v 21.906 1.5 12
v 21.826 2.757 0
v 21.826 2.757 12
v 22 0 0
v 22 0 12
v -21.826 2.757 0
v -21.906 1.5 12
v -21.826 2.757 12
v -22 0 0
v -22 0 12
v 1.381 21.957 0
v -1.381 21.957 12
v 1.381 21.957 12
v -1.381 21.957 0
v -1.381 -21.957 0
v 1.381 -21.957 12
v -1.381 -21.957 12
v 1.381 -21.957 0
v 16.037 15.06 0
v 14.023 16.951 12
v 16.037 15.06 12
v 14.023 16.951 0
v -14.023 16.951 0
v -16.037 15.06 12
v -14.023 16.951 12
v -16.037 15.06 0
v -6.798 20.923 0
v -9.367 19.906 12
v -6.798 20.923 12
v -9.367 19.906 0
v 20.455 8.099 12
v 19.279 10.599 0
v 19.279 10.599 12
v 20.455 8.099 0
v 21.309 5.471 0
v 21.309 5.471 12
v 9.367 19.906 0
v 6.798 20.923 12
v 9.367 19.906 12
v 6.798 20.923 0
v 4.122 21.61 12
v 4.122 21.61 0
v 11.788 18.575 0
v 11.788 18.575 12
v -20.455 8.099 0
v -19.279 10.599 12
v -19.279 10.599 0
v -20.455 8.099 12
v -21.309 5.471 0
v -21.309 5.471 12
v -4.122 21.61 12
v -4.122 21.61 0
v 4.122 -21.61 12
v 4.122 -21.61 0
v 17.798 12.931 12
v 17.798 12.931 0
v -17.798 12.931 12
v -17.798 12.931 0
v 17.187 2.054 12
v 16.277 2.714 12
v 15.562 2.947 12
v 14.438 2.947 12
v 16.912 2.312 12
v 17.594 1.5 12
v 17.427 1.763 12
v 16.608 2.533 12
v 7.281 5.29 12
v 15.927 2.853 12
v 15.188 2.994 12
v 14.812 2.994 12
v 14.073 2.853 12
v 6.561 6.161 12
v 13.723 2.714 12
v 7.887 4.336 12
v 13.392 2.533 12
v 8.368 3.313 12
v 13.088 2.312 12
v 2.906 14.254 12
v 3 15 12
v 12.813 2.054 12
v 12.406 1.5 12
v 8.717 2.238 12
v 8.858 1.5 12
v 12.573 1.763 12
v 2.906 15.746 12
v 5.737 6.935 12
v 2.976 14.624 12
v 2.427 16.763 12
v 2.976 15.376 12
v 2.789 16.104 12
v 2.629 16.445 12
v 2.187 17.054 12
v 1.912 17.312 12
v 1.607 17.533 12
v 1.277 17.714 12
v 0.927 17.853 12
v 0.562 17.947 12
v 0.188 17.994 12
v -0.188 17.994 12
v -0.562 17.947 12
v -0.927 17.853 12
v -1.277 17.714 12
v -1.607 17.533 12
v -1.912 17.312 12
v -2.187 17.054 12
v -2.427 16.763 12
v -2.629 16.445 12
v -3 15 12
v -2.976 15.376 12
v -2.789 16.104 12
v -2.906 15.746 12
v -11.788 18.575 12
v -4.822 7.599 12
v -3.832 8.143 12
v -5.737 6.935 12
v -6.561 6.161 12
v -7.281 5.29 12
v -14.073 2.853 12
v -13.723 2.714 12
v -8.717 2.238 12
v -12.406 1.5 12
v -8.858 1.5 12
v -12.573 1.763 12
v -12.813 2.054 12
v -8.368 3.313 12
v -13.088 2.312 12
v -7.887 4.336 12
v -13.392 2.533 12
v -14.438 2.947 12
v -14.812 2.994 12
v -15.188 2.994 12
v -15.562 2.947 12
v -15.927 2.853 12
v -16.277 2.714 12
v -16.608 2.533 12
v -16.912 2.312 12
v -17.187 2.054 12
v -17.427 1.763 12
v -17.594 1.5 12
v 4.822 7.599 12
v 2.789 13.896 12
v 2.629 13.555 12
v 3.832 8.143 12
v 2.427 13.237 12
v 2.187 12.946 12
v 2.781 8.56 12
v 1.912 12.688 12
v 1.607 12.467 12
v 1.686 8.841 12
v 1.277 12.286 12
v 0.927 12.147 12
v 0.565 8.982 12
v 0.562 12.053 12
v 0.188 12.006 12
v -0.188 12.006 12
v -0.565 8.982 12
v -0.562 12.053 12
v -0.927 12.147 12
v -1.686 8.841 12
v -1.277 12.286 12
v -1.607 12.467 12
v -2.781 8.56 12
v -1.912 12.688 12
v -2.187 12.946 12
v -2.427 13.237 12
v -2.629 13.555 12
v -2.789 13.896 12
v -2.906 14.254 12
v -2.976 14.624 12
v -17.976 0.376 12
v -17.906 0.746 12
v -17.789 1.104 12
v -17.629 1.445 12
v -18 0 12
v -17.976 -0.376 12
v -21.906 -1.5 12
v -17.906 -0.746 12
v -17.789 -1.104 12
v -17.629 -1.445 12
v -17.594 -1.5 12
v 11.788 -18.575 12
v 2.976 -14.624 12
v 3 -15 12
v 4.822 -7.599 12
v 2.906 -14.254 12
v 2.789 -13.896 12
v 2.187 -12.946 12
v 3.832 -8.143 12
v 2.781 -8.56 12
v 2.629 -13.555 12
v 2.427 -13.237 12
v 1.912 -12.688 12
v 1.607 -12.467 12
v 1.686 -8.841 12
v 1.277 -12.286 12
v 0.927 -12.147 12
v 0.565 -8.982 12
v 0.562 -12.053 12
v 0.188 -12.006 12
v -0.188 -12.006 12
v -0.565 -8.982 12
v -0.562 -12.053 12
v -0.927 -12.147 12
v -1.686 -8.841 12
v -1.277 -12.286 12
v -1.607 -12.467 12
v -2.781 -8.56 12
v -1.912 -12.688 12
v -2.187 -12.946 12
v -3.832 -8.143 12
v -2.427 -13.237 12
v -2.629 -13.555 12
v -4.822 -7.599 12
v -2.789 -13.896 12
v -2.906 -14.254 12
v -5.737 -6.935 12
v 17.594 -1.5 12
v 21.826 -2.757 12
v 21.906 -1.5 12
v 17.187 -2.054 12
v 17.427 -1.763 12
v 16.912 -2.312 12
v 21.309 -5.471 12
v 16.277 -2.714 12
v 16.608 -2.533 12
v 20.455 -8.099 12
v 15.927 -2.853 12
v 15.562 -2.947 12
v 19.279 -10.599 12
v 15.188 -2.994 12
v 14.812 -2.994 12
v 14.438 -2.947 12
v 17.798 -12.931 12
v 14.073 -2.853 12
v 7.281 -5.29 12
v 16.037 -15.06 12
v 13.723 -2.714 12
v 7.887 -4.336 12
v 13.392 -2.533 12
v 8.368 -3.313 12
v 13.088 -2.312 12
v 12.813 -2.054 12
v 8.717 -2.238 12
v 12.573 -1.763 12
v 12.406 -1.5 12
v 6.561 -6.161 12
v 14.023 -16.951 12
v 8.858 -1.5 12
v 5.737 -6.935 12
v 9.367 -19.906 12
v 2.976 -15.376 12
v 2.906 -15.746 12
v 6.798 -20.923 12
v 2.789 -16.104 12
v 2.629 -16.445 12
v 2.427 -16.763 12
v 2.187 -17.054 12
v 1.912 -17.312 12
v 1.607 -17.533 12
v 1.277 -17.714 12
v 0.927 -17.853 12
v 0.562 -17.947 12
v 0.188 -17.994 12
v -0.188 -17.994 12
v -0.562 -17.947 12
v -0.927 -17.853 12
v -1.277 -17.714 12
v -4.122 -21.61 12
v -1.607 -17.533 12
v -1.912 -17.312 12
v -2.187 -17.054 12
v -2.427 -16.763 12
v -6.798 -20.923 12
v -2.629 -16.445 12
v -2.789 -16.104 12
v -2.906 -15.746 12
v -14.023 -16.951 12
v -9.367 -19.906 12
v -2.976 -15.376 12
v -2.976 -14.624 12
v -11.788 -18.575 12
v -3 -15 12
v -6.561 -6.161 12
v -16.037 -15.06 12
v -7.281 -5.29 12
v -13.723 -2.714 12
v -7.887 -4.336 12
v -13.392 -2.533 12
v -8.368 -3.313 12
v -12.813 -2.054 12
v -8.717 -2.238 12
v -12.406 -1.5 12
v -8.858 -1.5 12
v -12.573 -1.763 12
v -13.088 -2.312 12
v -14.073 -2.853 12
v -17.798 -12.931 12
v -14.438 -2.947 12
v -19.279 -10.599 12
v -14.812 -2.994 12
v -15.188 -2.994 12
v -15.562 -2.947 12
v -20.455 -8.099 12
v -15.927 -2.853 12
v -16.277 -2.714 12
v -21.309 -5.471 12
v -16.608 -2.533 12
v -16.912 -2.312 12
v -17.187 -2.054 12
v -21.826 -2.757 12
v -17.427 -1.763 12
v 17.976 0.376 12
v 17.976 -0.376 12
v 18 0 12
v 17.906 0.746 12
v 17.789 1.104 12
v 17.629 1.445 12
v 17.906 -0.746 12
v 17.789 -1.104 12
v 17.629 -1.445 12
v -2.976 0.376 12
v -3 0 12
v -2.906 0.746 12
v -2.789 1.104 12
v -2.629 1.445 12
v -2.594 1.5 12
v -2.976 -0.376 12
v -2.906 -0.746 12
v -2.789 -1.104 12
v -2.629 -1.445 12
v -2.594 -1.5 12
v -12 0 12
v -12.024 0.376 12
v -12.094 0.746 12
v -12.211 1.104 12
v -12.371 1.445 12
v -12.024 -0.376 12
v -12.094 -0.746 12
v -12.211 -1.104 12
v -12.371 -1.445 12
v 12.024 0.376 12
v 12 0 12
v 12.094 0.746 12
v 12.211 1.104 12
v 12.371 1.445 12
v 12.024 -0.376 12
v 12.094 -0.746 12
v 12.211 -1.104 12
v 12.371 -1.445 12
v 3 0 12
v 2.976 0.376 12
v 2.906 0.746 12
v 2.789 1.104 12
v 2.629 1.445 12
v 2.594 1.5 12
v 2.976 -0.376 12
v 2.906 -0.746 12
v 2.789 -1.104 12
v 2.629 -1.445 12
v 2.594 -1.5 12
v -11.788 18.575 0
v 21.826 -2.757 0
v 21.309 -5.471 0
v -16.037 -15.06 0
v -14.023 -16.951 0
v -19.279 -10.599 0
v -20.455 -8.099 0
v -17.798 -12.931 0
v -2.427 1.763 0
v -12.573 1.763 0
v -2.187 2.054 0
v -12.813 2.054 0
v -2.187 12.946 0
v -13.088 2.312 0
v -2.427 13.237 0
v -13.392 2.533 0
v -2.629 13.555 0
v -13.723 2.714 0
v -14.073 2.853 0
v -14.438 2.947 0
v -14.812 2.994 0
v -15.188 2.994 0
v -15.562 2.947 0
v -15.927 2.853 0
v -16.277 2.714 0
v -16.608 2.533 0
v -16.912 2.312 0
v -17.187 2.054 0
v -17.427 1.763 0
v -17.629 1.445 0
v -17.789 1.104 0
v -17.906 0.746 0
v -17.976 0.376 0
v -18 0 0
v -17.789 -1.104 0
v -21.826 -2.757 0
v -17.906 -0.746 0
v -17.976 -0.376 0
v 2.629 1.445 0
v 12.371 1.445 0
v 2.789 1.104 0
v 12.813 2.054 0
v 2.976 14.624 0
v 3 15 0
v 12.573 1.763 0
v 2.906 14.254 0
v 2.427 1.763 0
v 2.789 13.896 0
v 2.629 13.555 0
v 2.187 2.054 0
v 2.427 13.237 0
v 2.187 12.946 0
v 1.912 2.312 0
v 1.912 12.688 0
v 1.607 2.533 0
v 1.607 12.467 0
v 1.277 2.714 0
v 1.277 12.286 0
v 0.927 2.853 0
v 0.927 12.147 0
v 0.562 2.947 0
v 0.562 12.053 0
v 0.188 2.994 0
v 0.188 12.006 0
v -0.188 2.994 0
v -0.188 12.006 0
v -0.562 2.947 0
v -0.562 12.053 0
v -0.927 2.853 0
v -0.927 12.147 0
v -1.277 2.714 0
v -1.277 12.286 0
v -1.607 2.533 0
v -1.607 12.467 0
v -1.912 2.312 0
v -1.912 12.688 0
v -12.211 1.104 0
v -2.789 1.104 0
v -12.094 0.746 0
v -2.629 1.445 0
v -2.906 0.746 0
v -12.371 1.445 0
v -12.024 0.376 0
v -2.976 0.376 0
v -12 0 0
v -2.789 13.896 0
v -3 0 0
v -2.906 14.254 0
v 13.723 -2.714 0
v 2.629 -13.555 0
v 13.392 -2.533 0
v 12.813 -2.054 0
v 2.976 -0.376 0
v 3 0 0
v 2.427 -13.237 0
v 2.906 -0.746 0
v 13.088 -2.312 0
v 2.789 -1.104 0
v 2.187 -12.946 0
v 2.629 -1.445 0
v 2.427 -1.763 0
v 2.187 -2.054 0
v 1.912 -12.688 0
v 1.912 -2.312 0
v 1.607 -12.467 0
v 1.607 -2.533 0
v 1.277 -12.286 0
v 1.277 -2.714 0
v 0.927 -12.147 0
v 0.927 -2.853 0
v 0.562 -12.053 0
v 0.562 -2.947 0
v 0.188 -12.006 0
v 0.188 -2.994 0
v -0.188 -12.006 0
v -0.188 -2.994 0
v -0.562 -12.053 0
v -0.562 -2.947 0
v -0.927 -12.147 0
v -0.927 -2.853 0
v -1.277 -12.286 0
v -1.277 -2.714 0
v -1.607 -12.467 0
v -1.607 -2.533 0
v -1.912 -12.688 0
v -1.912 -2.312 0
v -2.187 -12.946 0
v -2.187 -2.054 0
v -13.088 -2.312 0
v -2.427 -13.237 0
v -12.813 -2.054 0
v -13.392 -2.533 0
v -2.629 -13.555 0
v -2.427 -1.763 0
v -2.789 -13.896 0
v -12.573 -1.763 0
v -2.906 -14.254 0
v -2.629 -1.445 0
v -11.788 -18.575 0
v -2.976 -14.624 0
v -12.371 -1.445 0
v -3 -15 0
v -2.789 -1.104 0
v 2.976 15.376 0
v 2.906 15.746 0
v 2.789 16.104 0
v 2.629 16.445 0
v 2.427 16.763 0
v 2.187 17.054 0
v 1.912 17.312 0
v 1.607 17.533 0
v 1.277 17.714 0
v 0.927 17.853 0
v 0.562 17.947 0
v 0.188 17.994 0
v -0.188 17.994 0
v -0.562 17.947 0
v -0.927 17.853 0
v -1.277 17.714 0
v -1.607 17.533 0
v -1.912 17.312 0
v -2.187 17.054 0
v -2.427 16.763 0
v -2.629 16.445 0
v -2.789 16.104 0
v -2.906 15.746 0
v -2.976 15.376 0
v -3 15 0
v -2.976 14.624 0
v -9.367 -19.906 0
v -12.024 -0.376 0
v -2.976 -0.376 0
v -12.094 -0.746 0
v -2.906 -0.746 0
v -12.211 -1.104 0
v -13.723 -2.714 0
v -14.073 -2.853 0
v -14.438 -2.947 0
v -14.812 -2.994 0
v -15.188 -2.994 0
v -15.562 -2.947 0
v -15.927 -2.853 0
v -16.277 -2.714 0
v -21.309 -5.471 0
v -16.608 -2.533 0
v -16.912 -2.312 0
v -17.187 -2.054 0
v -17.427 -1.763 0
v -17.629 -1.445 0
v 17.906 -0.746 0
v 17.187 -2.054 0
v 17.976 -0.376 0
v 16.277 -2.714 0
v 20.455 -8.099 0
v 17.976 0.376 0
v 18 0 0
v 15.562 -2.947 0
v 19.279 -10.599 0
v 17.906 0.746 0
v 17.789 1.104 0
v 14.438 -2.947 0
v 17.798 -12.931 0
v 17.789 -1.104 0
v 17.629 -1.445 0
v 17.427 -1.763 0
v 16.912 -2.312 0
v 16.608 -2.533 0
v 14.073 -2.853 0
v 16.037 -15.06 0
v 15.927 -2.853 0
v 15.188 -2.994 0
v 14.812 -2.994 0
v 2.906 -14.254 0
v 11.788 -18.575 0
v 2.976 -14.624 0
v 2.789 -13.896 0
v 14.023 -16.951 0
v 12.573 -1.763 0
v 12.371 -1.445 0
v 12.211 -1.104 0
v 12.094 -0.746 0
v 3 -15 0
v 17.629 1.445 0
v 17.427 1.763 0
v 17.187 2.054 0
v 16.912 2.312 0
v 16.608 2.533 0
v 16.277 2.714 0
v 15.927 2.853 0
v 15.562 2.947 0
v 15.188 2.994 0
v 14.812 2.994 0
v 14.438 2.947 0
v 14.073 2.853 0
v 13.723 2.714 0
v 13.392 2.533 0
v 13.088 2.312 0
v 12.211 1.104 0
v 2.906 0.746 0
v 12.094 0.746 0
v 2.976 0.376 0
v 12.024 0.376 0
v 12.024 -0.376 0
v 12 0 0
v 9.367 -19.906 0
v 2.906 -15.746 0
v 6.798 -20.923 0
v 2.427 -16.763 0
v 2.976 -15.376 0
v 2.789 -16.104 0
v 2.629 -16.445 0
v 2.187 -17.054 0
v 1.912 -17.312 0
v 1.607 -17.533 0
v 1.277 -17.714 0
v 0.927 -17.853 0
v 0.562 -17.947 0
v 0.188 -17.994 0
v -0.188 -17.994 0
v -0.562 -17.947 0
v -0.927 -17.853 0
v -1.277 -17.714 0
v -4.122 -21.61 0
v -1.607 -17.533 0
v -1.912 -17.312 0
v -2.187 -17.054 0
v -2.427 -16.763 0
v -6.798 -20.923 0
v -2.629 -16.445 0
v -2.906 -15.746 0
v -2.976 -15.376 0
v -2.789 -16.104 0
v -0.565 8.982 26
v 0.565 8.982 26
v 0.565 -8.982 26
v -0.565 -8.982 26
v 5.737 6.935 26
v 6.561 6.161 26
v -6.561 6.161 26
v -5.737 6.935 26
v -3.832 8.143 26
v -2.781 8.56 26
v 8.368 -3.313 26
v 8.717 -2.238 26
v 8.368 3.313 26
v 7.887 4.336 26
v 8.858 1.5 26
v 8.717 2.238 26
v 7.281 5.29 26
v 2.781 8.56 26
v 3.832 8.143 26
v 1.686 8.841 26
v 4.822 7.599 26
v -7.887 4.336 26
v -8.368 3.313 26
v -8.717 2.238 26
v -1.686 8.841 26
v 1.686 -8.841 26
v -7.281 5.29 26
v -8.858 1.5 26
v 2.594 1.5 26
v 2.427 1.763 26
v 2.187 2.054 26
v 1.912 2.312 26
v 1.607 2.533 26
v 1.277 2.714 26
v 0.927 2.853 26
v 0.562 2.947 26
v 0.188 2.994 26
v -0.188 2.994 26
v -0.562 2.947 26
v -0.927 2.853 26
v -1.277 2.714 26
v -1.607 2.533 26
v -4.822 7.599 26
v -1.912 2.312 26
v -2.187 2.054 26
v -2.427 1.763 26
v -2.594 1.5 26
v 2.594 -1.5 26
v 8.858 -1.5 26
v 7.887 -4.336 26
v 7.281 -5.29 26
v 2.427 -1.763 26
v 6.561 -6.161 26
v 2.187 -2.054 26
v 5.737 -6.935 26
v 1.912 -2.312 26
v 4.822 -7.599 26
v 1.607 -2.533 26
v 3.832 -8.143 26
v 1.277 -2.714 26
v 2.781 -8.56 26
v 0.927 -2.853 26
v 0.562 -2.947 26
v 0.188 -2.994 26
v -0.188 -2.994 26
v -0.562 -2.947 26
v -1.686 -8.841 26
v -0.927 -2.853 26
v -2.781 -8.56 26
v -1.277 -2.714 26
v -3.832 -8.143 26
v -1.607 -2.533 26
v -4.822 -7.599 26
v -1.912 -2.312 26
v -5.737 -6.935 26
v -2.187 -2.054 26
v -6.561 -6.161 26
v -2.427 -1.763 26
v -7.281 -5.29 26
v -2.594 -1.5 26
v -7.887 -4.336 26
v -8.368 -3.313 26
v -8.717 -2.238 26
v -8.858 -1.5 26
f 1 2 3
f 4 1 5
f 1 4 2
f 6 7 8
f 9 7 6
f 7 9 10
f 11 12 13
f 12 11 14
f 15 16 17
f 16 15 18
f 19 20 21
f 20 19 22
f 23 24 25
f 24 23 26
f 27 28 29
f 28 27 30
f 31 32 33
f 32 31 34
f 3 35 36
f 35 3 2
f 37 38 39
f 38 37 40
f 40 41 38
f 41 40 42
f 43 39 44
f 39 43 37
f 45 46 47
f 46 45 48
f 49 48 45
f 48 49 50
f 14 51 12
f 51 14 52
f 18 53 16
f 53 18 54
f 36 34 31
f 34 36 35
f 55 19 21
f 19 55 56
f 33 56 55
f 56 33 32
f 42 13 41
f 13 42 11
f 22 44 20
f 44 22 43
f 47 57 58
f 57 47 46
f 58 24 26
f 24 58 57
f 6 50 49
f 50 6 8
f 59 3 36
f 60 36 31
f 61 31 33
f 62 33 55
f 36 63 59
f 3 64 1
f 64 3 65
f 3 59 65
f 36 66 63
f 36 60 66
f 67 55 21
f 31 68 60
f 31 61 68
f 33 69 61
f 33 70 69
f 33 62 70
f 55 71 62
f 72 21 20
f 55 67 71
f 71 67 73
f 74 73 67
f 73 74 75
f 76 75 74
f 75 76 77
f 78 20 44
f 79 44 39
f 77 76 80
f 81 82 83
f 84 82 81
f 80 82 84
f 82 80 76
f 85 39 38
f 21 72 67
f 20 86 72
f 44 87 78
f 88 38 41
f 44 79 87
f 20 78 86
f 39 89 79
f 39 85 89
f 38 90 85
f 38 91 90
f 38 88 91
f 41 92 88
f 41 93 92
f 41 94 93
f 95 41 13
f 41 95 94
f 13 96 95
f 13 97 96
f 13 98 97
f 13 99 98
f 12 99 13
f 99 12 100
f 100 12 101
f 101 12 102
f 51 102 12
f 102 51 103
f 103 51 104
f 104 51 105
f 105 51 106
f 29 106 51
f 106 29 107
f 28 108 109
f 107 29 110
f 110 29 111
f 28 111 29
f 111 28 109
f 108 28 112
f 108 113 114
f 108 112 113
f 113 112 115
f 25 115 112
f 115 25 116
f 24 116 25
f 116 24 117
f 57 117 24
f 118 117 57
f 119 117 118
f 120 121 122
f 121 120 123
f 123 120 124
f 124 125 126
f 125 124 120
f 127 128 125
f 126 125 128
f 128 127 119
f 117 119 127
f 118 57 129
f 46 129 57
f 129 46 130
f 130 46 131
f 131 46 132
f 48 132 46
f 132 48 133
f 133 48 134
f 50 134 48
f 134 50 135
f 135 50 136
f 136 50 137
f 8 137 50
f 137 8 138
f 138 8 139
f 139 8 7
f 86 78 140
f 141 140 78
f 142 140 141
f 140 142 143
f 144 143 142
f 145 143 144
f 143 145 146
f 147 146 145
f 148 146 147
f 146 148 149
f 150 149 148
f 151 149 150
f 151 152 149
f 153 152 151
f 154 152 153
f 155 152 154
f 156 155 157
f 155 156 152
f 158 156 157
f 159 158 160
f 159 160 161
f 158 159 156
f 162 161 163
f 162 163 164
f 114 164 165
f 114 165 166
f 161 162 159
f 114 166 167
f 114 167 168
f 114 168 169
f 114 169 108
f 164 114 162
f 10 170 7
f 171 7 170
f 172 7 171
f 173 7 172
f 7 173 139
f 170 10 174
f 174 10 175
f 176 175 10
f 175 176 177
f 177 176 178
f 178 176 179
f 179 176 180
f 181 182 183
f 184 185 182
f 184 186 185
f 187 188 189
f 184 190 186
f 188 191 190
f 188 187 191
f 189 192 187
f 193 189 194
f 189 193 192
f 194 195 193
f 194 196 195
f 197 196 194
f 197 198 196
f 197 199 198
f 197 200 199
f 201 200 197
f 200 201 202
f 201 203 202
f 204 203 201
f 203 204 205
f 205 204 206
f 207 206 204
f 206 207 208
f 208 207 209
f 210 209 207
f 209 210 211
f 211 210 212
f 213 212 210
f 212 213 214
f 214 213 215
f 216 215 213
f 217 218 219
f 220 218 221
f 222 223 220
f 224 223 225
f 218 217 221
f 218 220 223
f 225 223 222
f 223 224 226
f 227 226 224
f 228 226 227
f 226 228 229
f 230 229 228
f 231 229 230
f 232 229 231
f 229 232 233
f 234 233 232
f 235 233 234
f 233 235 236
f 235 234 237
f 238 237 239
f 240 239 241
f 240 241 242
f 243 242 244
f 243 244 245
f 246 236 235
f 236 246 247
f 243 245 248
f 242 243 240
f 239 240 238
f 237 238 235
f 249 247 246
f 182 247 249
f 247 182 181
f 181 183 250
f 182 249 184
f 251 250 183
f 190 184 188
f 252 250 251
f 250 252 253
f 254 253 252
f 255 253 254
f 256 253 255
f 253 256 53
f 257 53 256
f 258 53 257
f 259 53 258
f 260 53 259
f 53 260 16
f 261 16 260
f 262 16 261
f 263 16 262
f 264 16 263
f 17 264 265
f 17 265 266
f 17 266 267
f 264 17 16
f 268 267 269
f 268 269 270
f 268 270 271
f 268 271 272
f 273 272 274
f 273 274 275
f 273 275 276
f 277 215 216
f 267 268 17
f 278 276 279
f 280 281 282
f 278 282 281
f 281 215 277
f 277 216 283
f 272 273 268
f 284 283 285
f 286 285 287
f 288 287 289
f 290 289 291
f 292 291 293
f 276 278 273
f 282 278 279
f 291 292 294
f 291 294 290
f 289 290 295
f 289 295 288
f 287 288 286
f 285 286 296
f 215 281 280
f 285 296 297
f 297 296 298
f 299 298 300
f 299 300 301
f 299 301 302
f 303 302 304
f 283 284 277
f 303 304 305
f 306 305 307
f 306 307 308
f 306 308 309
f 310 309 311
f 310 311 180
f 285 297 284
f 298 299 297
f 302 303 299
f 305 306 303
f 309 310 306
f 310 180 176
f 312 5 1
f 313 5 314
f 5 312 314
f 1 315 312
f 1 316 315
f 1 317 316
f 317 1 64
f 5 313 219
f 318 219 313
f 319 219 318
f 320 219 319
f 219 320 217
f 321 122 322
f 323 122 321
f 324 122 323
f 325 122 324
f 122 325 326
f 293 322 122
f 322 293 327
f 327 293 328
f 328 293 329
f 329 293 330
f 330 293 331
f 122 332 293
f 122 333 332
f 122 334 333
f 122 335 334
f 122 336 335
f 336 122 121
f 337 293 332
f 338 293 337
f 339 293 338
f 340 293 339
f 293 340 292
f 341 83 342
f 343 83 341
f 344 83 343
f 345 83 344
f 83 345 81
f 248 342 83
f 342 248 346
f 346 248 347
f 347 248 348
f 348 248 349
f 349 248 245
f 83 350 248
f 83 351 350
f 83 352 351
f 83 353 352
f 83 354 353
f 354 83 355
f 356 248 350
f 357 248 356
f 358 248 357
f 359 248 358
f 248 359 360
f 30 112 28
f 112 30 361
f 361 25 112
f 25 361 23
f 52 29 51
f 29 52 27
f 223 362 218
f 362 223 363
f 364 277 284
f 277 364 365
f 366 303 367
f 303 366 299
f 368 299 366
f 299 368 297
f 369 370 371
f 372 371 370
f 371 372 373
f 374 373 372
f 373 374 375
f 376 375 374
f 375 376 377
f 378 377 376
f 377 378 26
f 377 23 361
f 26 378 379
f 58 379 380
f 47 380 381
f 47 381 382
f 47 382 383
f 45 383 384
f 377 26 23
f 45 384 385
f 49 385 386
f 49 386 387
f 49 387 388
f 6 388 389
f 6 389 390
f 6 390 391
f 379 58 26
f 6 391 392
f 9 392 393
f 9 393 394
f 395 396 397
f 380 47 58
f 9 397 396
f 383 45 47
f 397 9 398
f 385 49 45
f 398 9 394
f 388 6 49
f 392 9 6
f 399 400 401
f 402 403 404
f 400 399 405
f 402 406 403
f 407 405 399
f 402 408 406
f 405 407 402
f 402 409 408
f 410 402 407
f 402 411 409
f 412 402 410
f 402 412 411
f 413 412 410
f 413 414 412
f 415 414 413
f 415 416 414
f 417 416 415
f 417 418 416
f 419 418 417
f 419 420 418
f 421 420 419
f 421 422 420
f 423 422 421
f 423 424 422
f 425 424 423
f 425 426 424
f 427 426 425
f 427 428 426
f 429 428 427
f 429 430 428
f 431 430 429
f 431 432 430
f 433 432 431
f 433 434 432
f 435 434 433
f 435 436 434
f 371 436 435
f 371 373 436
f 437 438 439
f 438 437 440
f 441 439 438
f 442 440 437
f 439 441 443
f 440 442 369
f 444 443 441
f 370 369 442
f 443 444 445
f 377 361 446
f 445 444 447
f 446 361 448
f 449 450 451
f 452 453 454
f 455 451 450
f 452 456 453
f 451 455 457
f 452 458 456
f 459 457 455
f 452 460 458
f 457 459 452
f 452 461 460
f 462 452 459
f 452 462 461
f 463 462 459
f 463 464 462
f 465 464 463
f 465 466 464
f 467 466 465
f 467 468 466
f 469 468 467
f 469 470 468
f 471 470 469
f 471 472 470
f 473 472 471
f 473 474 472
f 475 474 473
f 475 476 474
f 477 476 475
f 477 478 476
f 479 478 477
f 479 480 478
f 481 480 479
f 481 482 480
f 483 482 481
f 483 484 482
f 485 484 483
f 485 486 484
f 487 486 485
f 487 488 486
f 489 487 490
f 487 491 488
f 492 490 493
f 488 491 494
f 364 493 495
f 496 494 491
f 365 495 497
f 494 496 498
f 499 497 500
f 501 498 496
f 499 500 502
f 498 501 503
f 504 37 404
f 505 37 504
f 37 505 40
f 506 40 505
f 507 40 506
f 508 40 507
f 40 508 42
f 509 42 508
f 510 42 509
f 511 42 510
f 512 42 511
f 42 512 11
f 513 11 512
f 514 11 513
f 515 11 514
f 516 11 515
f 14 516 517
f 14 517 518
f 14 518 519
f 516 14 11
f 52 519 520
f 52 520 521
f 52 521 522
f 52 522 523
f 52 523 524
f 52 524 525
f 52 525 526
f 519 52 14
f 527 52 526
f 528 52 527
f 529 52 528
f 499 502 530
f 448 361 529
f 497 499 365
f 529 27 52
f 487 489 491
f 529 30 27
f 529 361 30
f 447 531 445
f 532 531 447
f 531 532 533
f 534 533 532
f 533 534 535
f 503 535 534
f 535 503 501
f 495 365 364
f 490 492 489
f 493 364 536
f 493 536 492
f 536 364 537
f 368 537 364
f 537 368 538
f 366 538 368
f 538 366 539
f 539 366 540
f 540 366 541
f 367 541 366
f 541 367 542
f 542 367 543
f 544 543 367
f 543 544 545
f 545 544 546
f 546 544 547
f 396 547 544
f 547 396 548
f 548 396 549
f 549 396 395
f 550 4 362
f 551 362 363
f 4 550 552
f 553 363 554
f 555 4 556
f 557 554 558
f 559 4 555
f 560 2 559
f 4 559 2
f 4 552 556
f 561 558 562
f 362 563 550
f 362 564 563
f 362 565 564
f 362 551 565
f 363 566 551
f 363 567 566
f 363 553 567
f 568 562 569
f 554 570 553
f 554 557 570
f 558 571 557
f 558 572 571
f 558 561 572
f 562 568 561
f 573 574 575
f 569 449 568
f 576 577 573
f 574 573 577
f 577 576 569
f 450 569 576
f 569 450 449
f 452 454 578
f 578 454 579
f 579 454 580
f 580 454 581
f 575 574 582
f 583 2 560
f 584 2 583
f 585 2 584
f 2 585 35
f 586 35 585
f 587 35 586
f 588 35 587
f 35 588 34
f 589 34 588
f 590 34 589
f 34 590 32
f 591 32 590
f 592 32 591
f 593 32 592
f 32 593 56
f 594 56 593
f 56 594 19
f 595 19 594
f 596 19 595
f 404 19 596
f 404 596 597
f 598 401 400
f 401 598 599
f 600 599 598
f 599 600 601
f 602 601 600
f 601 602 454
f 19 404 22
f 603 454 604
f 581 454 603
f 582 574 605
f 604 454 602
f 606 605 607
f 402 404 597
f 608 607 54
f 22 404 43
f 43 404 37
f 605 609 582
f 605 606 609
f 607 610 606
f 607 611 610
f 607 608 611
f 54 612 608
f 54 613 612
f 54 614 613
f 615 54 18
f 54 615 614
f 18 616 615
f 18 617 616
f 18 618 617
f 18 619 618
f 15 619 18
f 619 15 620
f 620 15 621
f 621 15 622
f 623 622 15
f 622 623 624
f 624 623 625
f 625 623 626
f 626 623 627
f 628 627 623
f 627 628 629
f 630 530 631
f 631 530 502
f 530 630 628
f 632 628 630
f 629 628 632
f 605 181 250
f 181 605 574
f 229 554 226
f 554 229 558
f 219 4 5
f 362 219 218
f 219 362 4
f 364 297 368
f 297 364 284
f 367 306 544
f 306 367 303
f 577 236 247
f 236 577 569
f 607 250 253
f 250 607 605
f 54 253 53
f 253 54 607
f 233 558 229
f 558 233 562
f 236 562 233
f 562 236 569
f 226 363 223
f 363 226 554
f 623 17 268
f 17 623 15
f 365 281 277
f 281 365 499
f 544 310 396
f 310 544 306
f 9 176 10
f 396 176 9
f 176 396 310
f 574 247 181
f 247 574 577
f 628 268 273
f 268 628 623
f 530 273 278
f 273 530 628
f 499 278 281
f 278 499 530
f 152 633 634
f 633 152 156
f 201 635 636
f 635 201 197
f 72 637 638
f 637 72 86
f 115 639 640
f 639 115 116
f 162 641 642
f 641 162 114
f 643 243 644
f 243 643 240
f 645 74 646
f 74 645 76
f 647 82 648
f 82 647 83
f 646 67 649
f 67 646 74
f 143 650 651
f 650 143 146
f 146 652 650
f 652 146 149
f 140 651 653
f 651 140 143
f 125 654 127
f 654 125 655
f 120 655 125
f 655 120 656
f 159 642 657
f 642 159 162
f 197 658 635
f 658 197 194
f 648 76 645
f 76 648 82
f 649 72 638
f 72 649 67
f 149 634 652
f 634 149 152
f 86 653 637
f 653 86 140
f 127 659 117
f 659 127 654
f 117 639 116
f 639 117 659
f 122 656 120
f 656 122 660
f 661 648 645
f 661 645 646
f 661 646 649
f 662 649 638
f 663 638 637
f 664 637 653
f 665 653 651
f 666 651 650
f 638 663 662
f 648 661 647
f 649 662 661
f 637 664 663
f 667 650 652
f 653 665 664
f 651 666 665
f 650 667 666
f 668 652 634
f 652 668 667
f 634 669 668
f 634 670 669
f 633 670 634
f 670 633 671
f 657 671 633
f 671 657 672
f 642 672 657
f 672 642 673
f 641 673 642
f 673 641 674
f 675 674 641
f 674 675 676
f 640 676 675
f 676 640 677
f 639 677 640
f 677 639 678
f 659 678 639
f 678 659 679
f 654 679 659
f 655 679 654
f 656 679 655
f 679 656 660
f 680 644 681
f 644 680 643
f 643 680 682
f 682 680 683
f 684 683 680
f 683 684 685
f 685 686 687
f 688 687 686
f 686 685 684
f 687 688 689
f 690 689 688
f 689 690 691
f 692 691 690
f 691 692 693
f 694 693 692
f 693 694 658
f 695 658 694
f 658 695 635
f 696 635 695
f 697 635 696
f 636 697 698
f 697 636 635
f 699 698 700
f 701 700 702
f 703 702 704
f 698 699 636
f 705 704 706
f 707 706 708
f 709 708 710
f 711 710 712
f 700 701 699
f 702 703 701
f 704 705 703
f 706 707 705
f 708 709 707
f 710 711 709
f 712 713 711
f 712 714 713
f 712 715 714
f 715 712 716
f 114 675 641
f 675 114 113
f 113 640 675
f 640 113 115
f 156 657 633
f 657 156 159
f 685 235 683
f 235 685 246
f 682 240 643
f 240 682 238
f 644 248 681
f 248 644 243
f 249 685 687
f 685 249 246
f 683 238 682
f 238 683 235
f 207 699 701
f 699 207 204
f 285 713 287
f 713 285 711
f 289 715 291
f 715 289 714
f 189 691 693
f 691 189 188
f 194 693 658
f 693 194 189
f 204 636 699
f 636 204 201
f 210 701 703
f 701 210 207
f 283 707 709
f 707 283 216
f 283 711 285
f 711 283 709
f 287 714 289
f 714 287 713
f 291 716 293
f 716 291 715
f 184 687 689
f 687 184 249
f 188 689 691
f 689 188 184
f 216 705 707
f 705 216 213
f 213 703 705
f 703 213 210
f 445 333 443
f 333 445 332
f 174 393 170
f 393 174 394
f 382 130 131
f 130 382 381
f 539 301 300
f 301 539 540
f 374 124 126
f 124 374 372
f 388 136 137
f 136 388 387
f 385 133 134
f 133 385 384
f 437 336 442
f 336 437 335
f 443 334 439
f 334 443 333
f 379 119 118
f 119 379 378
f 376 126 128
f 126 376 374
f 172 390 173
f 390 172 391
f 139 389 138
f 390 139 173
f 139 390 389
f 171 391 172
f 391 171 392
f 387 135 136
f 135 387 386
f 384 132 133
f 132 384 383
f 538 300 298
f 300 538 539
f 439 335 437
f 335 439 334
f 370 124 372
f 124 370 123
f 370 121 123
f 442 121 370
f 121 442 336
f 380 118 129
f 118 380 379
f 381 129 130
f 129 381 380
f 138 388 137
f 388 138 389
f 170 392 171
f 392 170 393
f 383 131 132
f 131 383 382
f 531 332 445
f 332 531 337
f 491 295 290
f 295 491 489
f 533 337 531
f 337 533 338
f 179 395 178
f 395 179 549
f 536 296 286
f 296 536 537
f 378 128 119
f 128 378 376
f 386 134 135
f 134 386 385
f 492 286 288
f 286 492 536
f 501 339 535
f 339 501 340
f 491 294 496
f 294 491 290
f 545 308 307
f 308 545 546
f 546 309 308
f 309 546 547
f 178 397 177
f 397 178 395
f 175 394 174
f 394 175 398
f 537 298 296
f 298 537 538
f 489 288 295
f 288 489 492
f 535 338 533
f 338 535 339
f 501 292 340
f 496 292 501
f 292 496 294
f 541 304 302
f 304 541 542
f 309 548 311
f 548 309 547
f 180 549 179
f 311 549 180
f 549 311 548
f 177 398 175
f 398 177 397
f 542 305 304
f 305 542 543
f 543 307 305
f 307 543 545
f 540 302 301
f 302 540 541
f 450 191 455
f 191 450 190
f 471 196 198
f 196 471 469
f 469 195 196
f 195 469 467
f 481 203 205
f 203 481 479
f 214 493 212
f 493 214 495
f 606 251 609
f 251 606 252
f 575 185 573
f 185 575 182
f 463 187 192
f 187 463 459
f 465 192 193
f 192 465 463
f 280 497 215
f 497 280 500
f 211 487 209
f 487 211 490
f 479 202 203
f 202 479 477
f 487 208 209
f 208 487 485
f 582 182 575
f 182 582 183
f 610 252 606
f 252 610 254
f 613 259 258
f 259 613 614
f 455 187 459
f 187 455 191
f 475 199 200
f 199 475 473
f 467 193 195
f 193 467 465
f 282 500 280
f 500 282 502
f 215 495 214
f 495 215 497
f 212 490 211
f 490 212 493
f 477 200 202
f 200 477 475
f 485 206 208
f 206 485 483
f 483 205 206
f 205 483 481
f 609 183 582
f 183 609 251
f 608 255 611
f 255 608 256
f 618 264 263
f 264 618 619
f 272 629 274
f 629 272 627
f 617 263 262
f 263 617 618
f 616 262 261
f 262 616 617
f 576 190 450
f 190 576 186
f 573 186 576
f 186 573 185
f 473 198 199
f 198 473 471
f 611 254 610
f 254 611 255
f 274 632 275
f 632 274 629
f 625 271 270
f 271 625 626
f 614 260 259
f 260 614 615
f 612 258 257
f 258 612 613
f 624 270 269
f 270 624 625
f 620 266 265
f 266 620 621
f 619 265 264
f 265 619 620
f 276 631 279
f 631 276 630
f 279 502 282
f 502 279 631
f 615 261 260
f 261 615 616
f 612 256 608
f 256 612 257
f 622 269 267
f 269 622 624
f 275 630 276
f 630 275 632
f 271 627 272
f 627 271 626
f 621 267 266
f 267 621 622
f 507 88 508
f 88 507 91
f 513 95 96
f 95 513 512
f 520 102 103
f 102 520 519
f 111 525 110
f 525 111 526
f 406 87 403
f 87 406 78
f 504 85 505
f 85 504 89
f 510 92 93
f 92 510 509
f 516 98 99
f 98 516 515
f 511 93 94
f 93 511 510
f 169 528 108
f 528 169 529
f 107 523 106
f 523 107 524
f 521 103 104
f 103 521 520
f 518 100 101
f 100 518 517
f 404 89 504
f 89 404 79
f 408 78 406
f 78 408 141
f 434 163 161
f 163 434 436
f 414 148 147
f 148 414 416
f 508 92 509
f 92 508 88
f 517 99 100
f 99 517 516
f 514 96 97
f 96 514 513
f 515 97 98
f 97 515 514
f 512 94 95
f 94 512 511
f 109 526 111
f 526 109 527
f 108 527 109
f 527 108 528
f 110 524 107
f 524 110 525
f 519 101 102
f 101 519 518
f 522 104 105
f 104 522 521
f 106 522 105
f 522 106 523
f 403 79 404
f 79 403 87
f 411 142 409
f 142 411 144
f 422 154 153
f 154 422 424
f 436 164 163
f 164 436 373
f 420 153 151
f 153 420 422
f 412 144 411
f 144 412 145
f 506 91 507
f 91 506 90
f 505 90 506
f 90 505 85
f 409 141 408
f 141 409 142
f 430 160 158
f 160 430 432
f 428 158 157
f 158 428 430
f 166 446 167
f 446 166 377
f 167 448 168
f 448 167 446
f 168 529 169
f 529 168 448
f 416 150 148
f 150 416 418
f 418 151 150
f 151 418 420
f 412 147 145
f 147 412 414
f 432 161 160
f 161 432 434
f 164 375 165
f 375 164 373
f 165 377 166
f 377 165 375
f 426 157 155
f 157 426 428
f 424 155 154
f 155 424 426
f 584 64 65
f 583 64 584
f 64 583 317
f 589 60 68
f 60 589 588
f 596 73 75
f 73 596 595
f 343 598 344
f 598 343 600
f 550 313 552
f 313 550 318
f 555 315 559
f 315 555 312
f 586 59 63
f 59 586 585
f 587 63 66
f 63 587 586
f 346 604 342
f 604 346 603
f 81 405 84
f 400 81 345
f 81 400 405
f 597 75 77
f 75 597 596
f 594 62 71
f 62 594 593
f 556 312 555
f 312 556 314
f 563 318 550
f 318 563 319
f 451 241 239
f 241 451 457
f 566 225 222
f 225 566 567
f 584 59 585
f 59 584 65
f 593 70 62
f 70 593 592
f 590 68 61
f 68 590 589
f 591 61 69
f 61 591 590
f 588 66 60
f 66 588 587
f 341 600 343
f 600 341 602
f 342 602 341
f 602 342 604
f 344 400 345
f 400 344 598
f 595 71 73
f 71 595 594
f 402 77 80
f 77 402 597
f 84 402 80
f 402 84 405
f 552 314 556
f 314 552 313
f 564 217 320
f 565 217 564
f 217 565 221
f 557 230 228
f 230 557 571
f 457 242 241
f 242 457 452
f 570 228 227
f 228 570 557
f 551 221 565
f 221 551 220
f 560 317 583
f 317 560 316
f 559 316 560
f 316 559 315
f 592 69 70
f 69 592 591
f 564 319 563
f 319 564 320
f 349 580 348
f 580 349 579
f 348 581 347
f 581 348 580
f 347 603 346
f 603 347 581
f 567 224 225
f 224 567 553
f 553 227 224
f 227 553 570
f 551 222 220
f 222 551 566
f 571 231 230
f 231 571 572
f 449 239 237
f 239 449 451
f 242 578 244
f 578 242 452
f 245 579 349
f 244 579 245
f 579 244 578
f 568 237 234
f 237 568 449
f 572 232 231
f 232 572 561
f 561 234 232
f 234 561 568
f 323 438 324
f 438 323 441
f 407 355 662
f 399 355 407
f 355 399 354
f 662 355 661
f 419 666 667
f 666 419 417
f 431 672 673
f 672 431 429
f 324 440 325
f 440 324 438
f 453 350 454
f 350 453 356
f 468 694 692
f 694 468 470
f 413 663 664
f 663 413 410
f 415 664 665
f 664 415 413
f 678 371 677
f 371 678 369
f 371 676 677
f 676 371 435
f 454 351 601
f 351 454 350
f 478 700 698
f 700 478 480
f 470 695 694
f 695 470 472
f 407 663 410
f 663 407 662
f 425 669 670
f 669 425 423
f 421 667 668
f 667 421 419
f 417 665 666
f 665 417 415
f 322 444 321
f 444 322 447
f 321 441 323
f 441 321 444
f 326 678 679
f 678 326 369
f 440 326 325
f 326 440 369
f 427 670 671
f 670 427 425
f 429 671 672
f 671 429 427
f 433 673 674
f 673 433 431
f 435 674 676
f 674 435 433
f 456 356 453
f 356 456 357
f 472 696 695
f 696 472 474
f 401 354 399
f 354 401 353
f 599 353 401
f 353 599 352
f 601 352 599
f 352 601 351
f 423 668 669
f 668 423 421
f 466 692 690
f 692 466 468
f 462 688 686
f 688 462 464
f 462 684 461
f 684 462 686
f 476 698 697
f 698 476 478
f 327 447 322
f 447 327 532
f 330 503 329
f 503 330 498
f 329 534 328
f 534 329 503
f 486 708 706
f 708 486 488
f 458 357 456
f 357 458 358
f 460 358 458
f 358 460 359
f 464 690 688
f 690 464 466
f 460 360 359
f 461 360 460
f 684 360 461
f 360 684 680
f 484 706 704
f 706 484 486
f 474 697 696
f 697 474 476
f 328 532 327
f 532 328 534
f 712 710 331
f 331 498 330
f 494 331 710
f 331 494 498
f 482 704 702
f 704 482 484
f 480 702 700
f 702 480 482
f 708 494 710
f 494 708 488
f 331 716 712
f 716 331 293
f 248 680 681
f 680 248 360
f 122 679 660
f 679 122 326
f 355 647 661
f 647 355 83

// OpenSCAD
$fn = 50;


difference() {
	union() {
		translate(v = [0, 0, 0.0000000000]) {
			rotate(a = [0, 0, 0]) {
				cylinder(h = 12, r = 22.0000000000);
			}
		}
		translate(v = [0, 0, 6.0000000000]) {
			rotate(a = [0, 0, 0]) {
				cylinder(h = 20, r = 9.0000000000);
			}
		}
	}
	union() {
		translate(v = [-15.0000000000, 0.0000000000, -125.0000000000]) {
			rotate(a = [0, 0, 0]) {
				cylinder(h = 250, r = 3.0000000000);
			}
		}
		translate(v = [0.0000000000, -15.0000000000, -125.0000000000]) {
			rotate(a = [0, 0, 0]) {
				cylinder(h = 250, r = 3.0000000000);
			}
		}
		translate(v = [0.0000000000, 15.0000000000, -125.0000000000]) {
			rotate(a = [0, 0, 0]) {
				cylinder(h = 250, r = 3.0000000000);
			}
		}
		translate(v = [15.0000000000, 0.0000000000, -125.0000000000]) {
			rotate(a = [0, 0, 0]) {
				cylinder(h = 250, r = 3.0000000000);
			}
		}
		translate(v = [0.0000000000, 0.0000000000, -125.0000000000]) {
			rotate(a = [0, 0, 0]) {
				cylinder(h = 250, r = 3.0000000000);
			}
		}
		translate(v = [-27.0000000000, -1.5000000000, 12]) {
			rotate(a = [0, 0, 0]) {
				cube(size = [54, 3, 20]);
			}
		}
	}
}
